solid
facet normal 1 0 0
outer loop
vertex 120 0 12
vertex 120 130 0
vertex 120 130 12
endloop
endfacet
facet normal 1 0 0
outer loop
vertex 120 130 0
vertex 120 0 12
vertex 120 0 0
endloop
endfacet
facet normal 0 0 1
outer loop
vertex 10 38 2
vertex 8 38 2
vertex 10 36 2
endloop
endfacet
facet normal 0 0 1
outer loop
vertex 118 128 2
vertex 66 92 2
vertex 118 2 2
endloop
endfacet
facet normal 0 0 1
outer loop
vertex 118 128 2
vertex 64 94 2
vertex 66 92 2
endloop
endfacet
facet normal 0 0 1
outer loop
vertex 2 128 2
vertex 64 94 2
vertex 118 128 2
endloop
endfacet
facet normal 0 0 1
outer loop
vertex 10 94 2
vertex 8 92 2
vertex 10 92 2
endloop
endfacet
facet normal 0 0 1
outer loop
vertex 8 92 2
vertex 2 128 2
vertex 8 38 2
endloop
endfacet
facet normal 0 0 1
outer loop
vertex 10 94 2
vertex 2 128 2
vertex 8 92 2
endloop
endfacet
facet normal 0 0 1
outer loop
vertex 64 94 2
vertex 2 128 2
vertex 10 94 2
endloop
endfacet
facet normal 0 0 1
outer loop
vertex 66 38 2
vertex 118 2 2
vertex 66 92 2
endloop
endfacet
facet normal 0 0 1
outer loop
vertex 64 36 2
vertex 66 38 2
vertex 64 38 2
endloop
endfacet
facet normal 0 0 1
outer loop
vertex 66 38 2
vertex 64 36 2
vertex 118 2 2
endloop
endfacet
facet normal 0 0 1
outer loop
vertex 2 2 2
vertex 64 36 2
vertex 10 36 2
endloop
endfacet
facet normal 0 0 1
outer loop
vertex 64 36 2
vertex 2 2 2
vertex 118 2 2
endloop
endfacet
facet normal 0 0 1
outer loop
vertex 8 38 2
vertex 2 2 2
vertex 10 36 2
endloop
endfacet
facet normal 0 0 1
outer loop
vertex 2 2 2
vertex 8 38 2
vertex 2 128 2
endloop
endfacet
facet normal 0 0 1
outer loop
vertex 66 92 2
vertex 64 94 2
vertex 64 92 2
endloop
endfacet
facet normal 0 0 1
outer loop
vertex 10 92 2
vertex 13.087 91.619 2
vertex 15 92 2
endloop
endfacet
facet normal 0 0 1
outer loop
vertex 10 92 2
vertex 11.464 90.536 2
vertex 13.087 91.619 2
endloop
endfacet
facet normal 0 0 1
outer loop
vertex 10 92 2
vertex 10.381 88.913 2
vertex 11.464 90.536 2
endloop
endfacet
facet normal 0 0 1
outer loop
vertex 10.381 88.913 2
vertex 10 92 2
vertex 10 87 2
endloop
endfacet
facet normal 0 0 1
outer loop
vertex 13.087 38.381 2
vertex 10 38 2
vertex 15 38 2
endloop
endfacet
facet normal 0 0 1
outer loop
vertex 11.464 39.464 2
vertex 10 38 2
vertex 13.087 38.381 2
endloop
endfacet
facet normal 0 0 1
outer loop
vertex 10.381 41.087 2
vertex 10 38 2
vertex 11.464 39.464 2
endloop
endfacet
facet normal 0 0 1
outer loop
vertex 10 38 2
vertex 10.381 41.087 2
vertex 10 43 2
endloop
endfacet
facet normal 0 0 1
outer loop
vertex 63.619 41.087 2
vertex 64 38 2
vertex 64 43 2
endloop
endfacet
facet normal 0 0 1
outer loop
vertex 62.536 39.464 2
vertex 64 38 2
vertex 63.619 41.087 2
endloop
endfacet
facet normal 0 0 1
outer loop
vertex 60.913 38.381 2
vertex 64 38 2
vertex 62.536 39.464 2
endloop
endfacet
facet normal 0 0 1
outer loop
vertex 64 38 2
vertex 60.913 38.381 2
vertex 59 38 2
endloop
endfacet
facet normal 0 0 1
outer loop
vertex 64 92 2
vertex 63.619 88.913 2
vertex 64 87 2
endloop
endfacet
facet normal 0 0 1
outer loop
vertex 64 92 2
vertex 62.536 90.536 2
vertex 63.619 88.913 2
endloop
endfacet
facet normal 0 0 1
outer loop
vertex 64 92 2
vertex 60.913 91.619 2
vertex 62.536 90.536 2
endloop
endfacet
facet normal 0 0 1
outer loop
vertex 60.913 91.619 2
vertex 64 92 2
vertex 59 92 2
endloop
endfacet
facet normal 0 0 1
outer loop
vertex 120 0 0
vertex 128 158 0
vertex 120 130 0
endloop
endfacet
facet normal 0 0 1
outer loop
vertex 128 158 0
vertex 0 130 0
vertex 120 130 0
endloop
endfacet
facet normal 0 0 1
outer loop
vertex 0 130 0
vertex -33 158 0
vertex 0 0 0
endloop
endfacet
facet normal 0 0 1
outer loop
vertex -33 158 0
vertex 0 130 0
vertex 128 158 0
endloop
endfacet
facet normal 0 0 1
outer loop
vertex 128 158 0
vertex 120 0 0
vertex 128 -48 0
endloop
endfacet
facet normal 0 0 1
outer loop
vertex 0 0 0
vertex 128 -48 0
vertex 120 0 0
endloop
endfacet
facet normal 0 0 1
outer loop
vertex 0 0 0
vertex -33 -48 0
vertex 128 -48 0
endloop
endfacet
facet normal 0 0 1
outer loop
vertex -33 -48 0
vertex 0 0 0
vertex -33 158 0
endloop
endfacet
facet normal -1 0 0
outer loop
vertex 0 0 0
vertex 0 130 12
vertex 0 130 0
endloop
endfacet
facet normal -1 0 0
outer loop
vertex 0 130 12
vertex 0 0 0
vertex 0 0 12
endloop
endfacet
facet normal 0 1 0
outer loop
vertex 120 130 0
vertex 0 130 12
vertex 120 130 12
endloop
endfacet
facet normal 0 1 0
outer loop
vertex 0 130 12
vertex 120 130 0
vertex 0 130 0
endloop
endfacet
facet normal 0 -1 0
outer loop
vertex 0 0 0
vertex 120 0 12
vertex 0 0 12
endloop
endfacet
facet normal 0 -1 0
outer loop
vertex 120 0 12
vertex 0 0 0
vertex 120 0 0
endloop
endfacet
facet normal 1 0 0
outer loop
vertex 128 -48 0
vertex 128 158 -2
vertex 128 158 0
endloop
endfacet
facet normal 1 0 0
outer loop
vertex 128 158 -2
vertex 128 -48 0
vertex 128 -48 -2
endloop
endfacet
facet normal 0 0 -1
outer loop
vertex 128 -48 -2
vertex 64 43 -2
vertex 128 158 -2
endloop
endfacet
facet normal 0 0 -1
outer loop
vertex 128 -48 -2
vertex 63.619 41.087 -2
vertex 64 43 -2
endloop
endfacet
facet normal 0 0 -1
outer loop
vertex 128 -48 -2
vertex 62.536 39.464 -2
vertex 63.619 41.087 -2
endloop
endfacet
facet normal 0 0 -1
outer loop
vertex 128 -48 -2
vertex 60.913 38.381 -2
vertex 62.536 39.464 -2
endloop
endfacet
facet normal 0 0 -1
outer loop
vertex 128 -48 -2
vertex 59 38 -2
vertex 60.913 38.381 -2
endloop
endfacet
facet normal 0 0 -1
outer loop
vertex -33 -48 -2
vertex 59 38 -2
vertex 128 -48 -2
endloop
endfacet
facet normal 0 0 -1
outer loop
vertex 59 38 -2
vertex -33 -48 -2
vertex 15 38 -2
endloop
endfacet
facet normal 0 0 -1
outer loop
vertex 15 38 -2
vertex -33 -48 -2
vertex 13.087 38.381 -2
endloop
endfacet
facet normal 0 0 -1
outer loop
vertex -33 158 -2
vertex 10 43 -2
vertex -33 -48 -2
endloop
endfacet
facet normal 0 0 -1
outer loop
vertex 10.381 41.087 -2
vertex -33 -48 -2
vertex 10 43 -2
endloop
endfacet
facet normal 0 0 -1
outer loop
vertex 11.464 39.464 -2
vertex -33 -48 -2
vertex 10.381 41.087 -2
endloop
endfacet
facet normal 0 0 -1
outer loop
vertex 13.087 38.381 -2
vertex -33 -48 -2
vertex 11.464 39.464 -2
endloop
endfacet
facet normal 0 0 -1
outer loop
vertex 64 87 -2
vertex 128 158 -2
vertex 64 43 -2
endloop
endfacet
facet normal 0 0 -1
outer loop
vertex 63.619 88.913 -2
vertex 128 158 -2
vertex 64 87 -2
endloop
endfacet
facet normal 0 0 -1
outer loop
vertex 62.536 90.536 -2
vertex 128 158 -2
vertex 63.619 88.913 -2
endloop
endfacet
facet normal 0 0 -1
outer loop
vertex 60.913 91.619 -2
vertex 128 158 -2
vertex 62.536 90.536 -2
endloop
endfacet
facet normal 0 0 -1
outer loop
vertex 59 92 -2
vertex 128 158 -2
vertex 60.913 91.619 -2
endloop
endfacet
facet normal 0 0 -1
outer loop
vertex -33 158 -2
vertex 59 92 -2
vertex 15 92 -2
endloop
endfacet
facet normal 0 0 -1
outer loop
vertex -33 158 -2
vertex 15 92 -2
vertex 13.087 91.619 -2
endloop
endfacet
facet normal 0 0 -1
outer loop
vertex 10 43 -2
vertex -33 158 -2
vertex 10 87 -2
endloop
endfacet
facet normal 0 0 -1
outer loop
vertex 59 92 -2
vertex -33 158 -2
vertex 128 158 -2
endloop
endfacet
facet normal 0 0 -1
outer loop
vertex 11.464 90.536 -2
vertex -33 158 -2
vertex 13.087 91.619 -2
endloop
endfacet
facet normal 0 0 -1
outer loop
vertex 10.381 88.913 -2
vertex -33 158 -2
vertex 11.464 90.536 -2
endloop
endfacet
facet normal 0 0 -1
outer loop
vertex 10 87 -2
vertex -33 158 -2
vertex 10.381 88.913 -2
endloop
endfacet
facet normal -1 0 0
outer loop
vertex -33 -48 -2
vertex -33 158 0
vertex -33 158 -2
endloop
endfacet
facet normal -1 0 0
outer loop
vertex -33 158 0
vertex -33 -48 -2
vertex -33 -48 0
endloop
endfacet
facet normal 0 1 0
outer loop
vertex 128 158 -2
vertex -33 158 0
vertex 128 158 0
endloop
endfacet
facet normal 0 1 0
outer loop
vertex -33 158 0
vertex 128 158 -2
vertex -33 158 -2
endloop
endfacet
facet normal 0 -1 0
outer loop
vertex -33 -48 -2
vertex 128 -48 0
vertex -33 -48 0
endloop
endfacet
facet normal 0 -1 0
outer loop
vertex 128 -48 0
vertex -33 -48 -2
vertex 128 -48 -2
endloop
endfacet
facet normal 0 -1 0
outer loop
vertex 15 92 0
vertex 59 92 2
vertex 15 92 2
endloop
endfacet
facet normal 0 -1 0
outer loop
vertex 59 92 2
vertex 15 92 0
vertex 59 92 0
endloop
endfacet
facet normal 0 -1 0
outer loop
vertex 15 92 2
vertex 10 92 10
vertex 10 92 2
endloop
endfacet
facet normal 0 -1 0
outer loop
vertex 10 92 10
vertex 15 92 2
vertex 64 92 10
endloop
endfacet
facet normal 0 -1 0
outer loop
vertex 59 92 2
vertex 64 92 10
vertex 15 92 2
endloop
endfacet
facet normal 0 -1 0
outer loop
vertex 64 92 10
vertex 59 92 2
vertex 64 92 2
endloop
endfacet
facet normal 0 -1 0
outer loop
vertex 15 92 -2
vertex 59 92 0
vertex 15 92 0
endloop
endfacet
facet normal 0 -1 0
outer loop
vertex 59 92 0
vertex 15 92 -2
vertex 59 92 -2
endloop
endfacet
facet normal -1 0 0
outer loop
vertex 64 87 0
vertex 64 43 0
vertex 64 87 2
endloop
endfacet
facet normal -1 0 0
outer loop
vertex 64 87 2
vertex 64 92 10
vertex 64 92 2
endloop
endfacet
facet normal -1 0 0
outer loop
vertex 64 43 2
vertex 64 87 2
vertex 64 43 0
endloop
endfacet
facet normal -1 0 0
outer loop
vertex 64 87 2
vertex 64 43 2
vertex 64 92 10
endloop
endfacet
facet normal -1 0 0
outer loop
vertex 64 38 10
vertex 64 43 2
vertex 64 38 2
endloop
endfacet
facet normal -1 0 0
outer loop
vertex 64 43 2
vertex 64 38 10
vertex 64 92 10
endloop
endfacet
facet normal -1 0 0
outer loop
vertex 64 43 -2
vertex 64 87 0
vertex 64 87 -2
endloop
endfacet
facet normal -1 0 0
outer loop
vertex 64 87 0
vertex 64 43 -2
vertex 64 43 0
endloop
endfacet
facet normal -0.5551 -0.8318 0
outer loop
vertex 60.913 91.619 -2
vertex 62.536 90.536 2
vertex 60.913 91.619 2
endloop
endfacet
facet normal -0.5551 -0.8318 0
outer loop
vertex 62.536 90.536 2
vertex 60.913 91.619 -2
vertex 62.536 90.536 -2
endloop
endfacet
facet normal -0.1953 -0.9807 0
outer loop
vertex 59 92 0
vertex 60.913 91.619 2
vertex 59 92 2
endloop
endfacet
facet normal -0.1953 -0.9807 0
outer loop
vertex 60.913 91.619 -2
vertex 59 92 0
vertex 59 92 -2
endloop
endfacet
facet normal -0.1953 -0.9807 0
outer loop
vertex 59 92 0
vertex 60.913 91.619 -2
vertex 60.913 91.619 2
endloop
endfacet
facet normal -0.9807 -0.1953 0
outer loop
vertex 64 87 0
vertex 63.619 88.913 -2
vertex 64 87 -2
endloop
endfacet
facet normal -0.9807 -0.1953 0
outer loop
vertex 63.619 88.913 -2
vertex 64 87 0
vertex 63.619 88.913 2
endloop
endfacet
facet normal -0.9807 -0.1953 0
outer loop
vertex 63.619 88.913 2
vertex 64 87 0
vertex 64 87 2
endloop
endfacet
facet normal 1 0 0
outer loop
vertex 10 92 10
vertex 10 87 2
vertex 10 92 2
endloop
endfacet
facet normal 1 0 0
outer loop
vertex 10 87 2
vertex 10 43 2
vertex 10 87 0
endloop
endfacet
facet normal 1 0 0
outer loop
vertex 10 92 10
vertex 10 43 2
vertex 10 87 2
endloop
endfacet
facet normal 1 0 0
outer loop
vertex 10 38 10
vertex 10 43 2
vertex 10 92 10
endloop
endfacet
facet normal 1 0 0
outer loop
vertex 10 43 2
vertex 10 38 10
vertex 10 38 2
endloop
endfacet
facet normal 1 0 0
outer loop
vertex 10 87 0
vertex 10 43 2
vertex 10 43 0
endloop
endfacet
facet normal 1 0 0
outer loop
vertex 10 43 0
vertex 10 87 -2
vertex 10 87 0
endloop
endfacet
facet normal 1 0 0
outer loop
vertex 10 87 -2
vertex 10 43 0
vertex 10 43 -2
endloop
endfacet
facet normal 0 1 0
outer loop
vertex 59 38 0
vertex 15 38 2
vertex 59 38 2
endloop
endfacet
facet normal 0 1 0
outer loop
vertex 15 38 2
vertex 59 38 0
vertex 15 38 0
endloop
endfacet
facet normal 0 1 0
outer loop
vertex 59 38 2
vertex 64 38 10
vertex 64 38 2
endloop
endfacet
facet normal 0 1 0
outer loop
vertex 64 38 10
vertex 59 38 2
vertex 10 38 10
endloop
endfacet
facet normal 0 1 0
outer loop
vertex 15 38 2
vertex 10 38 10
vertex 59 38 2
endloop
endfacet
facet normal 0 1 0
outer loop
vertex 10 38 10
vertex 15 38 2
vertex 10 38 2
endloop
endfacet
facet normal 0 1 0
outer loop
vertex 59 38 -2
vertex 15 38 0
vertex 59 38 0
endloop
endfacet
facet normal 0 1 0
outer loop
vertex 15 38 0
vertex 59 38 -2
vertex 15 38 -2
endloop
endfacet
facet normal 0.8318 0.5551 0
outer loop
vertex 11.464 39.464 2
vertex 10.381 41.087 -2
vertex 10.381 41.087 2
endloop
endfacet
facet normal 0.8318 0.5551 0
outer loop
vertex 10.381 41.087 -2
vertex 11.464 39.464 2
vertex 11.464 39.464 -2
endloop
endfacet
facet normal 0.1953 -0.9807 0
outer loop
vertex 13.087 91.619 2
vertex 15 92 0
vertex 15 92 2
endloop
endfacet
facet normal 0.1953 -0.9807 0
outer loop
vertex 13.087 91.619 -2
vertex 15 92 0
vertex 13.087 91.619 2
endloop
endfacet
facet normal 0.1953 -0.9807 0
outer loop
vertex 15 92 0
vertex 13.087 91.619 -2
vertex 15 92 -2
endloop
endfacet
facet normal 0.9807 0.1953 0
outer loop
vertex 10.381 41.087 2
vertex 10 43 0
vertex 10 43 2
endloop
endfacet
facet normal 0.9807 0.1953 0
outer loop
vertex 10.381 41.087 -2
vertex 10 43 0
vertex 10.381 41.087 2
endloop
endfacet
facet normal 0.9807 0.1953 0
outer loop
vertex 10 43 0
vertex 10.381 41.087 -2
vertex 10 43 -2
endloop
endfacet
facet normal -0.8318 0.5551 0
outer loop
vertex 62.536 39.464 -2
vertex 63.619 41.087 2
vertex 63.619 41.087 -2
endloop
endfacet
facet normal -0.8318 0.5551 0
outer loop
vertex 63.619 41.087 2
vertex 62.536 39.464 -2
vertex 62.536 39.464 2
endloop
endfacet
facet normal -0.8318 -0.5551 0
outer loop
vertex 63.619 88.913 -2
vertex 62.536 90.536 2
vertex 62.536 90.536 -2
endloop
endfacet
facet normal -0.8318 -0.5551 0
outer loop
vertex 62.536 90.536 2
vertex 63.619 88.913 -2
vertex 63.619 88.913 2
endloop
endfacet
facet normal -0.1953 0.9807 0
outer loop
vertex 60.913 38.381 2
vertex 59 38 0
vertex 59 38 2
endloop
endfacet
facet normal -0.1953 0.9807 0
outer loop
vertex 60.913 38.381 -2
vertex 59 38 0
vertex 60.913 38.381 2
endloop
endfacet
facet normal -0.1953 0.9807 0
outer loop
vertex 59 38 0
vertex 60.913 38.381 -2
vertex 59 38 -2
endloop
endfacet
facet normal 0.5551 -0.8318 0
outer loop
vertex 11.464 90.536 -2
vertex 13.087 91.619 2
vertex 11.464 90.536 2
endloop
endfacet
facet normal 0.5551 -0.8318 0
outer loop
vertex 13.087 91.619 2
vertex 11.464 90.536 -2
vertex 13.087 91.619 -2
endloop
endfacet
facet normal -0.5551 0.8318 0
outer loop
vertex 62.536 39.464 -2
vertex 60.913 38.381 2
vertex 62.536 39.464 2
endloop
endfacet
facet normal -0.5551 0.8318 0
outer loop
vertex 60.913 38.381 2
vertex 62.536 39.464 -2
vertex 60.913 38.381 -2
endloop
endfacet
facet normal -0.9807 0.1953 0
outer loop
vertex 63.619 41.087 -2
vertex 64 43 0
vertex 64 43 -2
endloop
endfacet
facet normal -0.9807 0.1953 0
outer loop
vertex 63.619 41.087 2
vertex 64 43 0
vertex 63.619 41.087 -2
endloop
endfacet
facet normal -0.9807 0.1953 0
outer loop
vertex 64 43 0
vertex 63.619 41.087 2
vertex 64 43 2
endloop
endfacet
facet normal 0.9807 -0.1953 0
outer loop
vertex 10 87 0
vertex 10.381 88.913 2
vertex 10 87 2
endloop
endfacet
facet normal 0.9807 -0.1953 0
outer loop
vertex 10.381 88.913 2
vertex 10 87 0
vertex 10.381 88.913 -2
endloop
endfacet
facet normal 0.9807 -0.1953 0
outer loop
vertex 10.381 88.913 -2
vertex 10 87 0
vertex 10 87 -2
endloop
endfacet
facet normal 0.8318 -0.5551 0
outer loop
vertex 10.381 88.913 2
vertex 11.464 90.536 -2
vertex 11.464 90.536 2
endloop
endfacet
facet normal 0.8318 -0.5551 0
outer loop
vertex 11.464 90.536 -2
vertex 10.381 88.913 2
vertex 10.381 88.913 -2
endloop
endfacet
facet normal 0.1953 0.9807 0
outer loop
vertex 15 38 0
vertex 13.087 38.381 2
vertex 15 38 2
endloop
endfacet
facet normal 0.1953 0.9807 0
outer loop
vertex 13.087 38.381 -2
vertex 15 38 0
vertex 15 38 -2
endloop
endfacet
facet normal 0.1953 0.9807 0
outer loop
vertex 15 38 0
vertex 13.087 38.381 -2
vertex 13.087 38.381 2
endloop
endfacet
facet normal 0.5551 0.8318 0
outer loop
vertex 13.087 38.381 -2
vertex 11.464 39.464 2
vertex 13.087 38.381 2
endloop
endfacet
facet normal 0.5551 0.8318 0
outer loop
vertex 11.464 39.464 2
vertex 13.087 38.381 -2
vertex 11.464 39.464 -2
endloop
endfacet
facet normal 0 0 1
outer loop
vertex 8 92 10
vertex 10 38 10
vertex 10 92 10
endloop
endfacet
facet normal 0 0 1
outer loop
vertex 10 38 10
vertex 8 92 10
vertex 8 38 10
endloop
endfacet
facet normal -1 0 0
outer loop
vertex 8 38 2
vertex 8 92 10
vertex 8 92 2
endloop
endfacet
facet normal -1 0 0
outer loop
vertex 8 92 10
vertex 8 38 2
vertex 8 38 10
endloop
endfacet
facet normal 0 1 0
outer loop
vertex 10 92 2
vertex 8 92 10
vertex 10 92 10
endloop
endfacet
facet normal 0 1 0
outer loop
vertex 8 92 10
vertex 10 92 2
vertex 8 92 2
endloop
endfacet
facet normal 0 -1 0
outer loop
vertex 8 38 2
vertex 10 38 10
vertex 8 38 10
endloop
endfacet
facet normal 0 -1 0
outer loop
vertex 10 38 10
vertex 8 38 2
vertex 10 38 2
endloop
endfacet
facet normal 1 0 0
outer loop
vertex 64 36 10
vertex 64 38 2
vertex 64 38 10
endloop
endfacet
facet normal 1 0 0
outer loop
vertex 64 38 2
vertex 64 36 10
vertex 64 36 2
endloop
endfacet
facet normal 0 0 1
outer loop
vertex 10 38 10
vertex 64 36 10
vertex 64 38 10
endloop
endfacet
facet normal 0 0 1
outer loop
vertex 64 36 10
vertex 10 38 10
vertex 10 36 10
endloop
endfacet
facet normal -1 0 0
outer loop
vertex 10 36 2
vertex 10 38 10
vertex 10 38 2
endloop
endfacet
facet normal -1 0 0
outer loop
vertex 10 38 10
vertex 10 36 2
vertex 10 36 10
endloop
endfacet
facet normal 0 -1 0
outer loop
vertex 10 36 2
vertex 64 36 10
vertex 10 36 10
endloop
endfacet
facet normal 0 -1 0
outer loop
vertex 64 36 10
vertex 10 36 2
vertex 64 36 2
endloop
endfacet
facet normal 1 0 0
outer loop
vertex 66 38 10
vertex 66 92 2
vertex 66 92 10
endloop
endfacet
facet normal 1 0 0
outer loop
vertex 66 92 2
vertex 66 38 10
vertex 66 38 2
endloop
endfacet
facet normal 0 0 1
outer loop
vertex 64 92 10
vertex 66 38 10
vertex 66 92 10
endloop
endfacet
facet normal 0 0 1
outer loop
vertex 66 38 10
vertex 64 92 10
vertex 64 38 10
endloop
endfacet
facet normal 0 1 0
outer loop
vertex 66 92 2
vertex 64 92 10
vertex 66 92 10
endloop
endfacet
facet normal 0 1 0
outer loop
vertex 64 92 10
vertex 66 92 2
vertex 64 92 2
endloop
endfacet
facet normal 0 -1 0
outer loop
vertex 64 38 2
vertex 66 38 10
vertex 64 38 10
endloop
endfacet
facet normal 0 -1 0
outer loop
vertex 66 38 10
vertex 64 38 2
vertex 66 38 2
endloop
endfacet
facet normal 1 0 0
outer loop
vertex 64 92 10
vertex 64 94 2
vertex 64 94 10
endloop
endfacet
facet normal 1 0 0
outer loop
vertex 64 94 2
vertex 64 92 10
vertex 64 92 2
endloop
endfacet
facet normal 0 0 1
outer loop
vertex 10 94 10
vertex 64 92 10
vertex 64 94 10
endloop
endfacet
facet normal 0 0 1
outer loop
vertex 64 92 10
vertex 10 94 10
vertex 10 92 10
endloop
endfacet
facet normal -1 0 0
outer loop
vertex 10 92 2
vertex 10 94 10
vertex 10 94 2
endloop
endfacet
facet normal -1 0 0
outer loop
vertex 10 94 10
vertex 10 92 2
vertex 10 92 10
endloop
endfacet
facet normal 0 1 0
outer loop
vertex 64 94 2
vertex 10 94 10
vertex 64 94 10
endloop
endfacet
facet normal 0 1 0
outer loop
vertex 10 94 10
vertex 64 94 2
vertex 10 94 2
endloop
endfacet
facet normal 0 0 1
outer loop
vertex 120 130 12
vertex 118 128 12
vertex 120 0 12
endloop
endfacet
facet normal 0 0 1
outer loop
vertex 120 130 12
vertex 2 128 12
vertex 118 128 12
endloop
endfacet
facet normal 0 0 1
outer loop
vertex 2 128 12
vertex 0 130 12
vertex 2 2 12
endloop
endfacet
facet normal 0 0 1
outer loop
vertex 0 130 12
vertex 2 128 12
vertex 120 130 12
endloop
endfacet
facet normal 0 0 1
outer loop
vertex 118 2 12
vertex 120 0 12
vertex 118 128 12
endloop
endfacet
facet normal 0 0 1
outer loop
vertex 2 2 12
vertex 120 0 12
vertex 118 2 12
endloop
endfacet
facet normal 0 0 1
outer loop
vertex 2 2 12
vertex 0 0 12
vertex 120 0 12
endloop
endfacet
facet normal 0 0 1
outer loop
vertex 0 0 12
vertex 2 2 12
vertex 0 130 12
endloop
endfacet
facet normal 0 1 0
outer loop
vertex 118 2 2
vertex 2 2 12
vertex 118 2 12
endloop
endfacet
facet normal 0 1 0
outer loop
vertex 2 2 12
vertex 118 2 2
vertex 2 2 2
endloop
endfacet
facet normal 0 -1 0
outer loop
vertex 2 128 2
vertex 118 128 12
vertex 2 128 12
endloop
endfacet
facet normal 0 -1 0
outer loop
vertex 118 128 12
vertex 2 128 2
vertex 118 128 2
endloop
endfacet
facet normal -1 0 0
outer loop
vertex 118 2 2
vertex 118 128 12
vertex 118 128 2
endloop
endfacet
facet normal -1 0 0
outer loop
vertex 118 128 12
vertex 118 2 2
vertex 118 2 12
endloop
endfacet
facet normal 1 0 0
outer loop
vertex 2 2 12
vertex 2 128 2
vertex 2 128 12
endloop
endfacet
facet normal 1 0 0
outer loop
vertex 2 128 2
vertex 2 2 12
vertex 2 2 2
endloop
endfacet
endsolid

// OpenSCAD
width  = 120;
height = 130;
hole_w =  54;
hole_h =  54;
hole_x =  10;
hole_y =  0.5 * (height - hole_h);
corner =  10;
inner  =  10;
depth  =   2;
left   =  33;
bottom =  28;
top    =  48;
right  =   8;

module rounded_hole() {
    //translate([ -0.5*hole_w, -0.5*hole_h, -depth ] )
    translate([ 0, 0, -2*depth ] )
        hull() {
            translate([ 0*hole_w+0.5*corner, 0*hole_h+0.5*corner, 0])
                cylinder( d = corner, h = 6*depth );
        
            translate([ 0*hole_w+0.5*corner, 1*hole_h-0.5*corner, 0])
                cylinder( d = corner, h = 6*depth );
        
            translate([ 1*hole_w-0.5*corner, 1*hole_h-0.5*corner, 0])
                cylinder( d = corner, h = 6*depth );
        
            translate([ 1*hole_w-0.5*corner, 0*hole_h+0.5*corner, 0])
                cylinder( d = corner, h = 6*depth );
        }
}

module hole_walls() {
    //translate([ -0.5*hole_w, -0.5*hole_h, 0 ] ) {
    translate([ 0, 0, 0 ] ) {
            translate([ 0*hole_w - depth, 0*hole_h, 0])
                cube( [ depth, hole_h, inner ] );
    
            translate([ 0*hole_w, 0*hole_h - depth, 0])
                cube( [ hole_w, depth, inner ] );
        
            translate([ 1*hole_w, 0*hole_h, 0])
                cube( [ depth, hole_h, inner ] );
        
            translate([ 0*hole_w, 1*hole_h, 0])
                cube( [ hole_w, depth, inner ] );
    }
}

module tile_walls() {
    color( [0, 1, 0] )
    translate([ 0*width-0*depth, 0*height-0*depth, depth])
        cube( [ width, depth, inner ] );
    
    color( [1, 0, 0] )
    translate([ 0*width-0*depth, 1*height-1*depth, depth])
        cube( [ width, depth, inner ] );
    
    color( [0, 1, 1] )
    translate([ 1*width-1*depth, 0*height-0*depth, depth])
        cube( [ depth, height, inner ] );
    
    color( [0, 1, 1] )
    translate([ 1*width-1*depth, 0*height-0*depth, depth])
        cube( [ depth, height, inner ] );
    
    color( [1, 0, 1] )
    translate([ 0*width-0*depth, 0*height-0*depth, depth])
        cube( [ depth, height, inner ] );
}

module tile_margins() {
    translate( [ -left, -top, -depth ] )
    cube( [width + left + right, height + top + bottom, depth ] );
}

color( [0, 0, 1] )
difference() {
    union() {
        cube( [ width, height, depth ] );
        tile_margins();
    }
    translate([hole_x, hole_y, 0 ] )
        rounded_hole();
}
translate([hole_x, hole_y, 0 ] )
    hole_walls();
tile_walls();
